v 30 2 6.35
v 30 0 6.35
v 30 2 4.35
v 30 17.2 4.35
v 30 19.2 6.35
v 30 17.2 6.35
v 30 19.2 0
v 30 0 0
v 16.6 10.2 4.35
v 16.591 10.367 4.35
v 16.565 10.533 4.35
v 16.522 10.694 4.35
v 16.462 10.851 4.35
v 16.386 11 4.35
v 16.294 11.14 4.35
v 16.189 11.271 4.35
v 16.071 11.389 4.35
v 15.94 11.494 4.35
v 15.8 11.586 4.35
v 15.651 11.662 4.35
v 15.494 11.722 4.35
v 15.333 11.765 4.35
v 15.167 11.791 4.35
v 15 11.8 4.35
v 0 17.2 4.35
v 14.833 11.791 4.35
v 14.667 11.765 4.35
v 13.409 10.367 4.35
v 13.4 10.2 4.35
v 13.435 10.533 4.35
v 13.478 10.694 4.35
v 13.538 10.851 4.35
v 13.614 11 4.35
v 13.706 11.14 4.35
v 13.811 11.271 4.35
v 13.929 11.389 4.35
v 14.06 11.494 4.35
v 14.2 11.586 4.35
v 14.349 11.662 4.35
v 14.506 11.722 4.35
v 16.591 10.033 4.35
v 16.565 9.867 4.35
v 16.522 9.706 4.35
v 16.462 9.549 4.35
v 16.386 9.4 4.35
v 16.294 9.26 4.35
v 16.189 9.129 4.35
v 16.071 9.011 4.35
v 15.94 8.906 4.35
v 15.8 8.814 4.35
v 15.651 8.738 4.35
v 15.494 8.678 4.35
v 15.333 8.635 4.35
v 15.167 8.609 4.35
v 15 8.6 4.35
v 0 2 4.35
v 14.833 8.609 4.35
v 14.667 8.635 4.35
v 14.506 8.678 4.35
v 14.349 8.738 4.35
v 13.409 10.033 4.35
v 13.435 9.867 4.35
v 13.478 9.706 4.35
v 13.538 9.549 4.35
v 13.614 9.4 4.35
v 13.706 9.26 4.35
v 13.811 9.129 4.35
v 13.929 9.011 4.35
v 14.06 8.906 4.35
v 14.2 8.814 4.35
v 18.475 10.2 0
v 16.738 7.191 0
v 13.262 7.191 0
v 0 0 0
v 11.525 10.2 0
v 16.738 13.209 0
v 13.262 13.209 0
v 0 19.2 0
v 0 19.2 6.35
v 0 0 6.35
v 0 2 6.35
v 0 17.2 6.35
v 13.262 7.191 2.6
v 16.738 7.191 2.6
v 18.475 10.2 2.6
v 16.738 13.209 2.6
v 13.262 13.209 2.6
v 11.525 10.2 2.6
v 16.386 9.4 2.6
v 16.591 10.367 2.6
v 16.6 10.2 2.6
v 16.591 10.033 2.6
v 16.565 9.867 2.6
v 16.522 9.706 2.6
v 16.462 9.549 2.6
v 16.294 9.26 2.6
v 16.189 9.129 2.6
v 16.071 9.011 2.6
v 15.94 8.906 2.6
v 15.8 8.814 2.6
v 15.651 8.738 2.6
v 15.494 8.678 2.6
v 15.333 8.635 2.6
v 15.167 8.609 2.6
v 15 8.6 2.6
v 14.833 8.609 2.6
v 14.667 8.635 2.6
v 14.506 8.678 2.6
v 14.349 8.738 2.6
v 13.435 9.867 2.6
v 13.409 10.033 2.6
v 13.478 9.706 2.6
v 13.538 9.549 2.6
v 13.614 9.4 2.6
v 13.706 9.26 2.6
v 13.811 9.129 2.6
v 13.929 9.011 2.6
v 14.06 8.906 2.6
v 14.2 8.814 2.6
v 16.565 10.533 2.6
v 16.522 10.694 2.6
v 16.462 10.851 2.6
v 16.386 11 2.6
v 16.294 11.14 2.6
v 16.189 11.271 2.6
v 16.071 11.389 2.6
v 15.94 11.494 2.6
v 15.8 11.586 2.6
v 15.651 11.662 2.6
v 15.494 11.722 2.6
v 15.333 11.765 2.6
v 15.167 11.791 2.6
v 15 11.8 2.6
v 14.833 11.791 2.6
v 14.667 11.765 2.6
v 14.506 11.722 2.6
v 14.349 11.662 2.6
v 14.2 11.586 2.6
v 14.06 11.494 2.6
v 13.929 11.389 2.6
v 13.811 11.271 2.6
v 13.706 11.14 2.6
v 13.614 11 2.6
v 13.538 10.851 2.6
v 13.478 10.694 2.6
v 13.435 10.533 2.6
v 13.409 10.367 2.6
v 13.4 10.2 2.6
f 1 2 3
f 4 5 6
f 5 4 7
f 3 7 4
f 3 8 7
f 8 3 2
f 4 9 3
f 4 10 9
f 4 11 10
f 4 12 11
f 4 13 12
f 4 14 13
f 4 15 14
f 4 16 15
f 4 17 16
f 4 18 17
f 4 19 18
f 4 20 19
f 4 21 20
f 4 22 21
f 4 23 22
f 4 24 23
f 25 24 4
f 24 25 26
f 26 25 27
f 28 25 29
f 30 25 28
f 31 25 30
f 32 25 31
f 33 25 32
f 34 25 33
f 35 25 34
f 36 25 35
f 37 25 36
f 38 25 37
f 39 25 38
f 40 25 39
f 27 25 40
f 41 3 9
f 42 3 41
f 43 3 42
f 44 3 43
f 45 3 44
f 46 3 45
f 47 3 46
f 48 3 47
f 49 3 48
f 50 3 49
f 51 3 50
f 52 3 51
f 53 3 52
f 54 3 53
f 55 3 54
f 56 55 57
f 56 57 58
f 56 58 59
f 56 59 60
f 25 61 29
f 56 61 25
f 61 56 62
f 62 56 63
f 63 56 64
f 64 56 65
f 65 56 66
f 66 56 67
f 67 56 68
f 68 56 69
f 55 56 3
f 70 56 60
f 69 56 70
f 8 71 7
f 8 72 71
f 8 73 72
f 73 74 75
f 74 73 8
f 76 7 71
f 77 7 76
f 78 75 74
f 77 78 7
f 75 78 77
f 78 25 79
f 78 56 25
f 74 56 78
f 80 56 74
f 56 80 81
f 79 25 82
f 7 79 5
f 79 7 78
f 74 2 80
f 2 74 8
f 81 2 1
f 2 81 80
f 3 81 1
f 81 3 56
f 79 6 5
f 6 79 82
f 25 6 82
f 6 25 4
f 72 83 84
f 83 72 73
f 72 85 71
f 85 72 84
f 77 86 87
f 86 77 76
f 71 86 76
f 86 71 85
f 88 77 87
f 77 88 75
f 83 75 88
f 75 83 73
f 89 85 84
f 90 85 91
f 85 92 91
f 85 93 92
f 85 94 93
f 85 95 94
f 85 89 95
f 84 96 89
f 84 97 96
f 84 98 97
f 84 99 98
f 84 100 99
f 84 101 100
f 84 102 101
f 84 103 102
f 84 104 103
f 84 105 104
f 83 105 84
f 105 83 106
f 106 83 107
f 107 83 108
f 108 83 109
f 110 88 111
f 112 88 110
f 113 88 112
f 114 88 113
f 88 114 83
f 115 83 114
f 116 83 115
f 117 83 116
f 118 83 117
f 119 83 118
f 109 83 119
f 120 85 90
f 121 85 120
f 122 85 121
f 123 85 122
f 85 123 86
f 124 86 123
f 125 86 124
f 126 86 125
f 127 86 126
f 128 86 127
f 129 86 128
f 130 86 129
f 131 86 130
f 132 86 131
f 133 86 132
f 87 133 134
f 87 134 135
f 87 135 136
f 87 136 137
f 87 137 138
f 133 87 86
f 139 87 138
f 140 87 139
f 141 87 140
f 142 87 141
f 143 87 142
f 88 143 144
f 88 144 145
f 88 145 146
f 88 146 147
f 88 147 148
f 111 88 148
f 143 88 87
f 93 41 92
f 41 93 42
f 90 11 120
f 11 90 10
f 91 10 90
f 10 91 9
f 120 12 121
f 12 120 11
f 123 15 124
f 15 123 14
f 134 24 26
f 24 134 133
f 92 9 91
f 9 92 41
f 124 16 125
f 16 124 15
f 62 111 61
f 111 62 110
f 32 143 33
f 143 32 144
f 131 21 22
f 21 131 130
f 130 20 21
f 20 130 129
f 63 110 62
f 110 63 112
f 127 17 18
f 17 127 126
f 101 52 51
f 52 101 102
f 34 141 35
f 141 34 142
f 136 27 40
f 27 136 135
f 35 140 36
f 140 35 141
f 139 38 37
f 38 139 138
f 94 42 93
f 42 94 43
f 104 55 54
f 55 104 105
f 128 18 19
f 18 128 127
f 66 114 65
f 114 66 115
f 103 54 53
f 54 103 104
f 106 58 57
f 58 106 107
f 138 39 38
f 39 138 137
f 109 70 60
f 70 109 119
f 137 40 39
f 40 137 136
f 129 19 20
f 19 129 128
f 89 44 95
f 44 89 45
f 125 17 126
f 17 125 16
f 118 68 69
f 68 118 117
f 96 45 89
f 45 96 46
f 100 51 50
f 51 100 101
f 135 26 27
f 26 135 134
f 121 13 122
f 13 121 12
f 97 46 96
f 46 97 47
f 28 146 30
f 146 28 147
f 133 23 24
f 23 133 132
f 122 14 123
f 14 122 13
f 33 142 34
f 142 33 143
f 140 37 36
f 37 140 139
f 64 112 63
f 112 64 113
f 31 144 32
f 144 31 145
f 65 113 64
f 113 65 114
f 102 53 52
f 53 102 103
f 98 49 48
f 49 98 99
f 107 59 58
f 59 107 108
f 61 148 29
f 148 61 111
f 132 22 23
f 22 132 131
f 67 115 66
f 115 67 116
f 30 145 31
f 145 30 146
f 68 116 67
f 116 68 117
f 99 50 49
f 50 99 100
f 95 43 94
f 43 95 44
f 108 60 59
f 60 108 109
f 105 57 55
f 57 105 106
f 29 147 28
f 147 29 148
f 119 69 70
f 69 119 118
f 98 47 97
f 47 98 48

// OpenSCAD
// file: common.scad
// all measurements are mm

// measured from front flange to rear flange
kb_d = 125;

// desired height of the back flange
back_h = 30;

flange_d = 15.2; // really 15, but leave some clearance

// hole center is about 6mm  offset from outer edge of flange
screw_hole_offset = 7;

// dimensions for m3 nut pocket
m3_hex_nut_d = 6.15; // measured the long way
m3_hex_nut_h = 2.15;
m3_hex_nut_hole_tolerance = 0.4;

// m3 screw hole diameter
m3_screw_hole_d = 3.2;

// bracket dimensions
bracket_w = 30;
bracket_base_thickness = m3_hex_nut_h + 0.2 + 2;
bracket_wall_thickness = 2;
bracket_d = flange_d + 2*bracket_wall_thickness; // depth of bracket base

// angle by which keyboard is inclined
kb_incline_angle = 13.8865;

leg_back_extra_h = ((3*bracket_d) / 12.5);
leg_front_height = 30 - leg_back_extra_h;
leg_d = sqrt(bracket_d*bracket_d - leg_back_extra_h*leg_back_extra_h);
// main file
// Bracket model for C16 keyboard support

include <common.scad>;

module bracket_solid() {
    cube([bracket_w, bracket_d, bracket_base_thickness]);
    
    translate([0, 0, bracket_base_thickness]) {
        cube([bracket_w, bracket_wall_thickness, bracket_wall_thickness]);
    }
    
    translate([0, flange_d+bracket_wall_thickness, bracket_base_thickness]) {
        cube([bracket_w, bracket_wall_thickness, bracket_wall_thickness]);
    }
}

module bracket() {
    difference() {
        bracket_solid();
        
        translate([bracket_w/2, flange_d+bracket_wall_thickness-screw_hole_offset, -0.05]) {
            cylinder(r=m3_hex_nut_d/2+m3_hex_nut_hole_tolerance, h=m3_hex_nut_h+0.4+0.1, $fn=6);
            cylinder(r=m3_screw_hole_d/2, h=bracket_base_thickness+0.1, $fn=60);
        }
    }
}

bracket();
